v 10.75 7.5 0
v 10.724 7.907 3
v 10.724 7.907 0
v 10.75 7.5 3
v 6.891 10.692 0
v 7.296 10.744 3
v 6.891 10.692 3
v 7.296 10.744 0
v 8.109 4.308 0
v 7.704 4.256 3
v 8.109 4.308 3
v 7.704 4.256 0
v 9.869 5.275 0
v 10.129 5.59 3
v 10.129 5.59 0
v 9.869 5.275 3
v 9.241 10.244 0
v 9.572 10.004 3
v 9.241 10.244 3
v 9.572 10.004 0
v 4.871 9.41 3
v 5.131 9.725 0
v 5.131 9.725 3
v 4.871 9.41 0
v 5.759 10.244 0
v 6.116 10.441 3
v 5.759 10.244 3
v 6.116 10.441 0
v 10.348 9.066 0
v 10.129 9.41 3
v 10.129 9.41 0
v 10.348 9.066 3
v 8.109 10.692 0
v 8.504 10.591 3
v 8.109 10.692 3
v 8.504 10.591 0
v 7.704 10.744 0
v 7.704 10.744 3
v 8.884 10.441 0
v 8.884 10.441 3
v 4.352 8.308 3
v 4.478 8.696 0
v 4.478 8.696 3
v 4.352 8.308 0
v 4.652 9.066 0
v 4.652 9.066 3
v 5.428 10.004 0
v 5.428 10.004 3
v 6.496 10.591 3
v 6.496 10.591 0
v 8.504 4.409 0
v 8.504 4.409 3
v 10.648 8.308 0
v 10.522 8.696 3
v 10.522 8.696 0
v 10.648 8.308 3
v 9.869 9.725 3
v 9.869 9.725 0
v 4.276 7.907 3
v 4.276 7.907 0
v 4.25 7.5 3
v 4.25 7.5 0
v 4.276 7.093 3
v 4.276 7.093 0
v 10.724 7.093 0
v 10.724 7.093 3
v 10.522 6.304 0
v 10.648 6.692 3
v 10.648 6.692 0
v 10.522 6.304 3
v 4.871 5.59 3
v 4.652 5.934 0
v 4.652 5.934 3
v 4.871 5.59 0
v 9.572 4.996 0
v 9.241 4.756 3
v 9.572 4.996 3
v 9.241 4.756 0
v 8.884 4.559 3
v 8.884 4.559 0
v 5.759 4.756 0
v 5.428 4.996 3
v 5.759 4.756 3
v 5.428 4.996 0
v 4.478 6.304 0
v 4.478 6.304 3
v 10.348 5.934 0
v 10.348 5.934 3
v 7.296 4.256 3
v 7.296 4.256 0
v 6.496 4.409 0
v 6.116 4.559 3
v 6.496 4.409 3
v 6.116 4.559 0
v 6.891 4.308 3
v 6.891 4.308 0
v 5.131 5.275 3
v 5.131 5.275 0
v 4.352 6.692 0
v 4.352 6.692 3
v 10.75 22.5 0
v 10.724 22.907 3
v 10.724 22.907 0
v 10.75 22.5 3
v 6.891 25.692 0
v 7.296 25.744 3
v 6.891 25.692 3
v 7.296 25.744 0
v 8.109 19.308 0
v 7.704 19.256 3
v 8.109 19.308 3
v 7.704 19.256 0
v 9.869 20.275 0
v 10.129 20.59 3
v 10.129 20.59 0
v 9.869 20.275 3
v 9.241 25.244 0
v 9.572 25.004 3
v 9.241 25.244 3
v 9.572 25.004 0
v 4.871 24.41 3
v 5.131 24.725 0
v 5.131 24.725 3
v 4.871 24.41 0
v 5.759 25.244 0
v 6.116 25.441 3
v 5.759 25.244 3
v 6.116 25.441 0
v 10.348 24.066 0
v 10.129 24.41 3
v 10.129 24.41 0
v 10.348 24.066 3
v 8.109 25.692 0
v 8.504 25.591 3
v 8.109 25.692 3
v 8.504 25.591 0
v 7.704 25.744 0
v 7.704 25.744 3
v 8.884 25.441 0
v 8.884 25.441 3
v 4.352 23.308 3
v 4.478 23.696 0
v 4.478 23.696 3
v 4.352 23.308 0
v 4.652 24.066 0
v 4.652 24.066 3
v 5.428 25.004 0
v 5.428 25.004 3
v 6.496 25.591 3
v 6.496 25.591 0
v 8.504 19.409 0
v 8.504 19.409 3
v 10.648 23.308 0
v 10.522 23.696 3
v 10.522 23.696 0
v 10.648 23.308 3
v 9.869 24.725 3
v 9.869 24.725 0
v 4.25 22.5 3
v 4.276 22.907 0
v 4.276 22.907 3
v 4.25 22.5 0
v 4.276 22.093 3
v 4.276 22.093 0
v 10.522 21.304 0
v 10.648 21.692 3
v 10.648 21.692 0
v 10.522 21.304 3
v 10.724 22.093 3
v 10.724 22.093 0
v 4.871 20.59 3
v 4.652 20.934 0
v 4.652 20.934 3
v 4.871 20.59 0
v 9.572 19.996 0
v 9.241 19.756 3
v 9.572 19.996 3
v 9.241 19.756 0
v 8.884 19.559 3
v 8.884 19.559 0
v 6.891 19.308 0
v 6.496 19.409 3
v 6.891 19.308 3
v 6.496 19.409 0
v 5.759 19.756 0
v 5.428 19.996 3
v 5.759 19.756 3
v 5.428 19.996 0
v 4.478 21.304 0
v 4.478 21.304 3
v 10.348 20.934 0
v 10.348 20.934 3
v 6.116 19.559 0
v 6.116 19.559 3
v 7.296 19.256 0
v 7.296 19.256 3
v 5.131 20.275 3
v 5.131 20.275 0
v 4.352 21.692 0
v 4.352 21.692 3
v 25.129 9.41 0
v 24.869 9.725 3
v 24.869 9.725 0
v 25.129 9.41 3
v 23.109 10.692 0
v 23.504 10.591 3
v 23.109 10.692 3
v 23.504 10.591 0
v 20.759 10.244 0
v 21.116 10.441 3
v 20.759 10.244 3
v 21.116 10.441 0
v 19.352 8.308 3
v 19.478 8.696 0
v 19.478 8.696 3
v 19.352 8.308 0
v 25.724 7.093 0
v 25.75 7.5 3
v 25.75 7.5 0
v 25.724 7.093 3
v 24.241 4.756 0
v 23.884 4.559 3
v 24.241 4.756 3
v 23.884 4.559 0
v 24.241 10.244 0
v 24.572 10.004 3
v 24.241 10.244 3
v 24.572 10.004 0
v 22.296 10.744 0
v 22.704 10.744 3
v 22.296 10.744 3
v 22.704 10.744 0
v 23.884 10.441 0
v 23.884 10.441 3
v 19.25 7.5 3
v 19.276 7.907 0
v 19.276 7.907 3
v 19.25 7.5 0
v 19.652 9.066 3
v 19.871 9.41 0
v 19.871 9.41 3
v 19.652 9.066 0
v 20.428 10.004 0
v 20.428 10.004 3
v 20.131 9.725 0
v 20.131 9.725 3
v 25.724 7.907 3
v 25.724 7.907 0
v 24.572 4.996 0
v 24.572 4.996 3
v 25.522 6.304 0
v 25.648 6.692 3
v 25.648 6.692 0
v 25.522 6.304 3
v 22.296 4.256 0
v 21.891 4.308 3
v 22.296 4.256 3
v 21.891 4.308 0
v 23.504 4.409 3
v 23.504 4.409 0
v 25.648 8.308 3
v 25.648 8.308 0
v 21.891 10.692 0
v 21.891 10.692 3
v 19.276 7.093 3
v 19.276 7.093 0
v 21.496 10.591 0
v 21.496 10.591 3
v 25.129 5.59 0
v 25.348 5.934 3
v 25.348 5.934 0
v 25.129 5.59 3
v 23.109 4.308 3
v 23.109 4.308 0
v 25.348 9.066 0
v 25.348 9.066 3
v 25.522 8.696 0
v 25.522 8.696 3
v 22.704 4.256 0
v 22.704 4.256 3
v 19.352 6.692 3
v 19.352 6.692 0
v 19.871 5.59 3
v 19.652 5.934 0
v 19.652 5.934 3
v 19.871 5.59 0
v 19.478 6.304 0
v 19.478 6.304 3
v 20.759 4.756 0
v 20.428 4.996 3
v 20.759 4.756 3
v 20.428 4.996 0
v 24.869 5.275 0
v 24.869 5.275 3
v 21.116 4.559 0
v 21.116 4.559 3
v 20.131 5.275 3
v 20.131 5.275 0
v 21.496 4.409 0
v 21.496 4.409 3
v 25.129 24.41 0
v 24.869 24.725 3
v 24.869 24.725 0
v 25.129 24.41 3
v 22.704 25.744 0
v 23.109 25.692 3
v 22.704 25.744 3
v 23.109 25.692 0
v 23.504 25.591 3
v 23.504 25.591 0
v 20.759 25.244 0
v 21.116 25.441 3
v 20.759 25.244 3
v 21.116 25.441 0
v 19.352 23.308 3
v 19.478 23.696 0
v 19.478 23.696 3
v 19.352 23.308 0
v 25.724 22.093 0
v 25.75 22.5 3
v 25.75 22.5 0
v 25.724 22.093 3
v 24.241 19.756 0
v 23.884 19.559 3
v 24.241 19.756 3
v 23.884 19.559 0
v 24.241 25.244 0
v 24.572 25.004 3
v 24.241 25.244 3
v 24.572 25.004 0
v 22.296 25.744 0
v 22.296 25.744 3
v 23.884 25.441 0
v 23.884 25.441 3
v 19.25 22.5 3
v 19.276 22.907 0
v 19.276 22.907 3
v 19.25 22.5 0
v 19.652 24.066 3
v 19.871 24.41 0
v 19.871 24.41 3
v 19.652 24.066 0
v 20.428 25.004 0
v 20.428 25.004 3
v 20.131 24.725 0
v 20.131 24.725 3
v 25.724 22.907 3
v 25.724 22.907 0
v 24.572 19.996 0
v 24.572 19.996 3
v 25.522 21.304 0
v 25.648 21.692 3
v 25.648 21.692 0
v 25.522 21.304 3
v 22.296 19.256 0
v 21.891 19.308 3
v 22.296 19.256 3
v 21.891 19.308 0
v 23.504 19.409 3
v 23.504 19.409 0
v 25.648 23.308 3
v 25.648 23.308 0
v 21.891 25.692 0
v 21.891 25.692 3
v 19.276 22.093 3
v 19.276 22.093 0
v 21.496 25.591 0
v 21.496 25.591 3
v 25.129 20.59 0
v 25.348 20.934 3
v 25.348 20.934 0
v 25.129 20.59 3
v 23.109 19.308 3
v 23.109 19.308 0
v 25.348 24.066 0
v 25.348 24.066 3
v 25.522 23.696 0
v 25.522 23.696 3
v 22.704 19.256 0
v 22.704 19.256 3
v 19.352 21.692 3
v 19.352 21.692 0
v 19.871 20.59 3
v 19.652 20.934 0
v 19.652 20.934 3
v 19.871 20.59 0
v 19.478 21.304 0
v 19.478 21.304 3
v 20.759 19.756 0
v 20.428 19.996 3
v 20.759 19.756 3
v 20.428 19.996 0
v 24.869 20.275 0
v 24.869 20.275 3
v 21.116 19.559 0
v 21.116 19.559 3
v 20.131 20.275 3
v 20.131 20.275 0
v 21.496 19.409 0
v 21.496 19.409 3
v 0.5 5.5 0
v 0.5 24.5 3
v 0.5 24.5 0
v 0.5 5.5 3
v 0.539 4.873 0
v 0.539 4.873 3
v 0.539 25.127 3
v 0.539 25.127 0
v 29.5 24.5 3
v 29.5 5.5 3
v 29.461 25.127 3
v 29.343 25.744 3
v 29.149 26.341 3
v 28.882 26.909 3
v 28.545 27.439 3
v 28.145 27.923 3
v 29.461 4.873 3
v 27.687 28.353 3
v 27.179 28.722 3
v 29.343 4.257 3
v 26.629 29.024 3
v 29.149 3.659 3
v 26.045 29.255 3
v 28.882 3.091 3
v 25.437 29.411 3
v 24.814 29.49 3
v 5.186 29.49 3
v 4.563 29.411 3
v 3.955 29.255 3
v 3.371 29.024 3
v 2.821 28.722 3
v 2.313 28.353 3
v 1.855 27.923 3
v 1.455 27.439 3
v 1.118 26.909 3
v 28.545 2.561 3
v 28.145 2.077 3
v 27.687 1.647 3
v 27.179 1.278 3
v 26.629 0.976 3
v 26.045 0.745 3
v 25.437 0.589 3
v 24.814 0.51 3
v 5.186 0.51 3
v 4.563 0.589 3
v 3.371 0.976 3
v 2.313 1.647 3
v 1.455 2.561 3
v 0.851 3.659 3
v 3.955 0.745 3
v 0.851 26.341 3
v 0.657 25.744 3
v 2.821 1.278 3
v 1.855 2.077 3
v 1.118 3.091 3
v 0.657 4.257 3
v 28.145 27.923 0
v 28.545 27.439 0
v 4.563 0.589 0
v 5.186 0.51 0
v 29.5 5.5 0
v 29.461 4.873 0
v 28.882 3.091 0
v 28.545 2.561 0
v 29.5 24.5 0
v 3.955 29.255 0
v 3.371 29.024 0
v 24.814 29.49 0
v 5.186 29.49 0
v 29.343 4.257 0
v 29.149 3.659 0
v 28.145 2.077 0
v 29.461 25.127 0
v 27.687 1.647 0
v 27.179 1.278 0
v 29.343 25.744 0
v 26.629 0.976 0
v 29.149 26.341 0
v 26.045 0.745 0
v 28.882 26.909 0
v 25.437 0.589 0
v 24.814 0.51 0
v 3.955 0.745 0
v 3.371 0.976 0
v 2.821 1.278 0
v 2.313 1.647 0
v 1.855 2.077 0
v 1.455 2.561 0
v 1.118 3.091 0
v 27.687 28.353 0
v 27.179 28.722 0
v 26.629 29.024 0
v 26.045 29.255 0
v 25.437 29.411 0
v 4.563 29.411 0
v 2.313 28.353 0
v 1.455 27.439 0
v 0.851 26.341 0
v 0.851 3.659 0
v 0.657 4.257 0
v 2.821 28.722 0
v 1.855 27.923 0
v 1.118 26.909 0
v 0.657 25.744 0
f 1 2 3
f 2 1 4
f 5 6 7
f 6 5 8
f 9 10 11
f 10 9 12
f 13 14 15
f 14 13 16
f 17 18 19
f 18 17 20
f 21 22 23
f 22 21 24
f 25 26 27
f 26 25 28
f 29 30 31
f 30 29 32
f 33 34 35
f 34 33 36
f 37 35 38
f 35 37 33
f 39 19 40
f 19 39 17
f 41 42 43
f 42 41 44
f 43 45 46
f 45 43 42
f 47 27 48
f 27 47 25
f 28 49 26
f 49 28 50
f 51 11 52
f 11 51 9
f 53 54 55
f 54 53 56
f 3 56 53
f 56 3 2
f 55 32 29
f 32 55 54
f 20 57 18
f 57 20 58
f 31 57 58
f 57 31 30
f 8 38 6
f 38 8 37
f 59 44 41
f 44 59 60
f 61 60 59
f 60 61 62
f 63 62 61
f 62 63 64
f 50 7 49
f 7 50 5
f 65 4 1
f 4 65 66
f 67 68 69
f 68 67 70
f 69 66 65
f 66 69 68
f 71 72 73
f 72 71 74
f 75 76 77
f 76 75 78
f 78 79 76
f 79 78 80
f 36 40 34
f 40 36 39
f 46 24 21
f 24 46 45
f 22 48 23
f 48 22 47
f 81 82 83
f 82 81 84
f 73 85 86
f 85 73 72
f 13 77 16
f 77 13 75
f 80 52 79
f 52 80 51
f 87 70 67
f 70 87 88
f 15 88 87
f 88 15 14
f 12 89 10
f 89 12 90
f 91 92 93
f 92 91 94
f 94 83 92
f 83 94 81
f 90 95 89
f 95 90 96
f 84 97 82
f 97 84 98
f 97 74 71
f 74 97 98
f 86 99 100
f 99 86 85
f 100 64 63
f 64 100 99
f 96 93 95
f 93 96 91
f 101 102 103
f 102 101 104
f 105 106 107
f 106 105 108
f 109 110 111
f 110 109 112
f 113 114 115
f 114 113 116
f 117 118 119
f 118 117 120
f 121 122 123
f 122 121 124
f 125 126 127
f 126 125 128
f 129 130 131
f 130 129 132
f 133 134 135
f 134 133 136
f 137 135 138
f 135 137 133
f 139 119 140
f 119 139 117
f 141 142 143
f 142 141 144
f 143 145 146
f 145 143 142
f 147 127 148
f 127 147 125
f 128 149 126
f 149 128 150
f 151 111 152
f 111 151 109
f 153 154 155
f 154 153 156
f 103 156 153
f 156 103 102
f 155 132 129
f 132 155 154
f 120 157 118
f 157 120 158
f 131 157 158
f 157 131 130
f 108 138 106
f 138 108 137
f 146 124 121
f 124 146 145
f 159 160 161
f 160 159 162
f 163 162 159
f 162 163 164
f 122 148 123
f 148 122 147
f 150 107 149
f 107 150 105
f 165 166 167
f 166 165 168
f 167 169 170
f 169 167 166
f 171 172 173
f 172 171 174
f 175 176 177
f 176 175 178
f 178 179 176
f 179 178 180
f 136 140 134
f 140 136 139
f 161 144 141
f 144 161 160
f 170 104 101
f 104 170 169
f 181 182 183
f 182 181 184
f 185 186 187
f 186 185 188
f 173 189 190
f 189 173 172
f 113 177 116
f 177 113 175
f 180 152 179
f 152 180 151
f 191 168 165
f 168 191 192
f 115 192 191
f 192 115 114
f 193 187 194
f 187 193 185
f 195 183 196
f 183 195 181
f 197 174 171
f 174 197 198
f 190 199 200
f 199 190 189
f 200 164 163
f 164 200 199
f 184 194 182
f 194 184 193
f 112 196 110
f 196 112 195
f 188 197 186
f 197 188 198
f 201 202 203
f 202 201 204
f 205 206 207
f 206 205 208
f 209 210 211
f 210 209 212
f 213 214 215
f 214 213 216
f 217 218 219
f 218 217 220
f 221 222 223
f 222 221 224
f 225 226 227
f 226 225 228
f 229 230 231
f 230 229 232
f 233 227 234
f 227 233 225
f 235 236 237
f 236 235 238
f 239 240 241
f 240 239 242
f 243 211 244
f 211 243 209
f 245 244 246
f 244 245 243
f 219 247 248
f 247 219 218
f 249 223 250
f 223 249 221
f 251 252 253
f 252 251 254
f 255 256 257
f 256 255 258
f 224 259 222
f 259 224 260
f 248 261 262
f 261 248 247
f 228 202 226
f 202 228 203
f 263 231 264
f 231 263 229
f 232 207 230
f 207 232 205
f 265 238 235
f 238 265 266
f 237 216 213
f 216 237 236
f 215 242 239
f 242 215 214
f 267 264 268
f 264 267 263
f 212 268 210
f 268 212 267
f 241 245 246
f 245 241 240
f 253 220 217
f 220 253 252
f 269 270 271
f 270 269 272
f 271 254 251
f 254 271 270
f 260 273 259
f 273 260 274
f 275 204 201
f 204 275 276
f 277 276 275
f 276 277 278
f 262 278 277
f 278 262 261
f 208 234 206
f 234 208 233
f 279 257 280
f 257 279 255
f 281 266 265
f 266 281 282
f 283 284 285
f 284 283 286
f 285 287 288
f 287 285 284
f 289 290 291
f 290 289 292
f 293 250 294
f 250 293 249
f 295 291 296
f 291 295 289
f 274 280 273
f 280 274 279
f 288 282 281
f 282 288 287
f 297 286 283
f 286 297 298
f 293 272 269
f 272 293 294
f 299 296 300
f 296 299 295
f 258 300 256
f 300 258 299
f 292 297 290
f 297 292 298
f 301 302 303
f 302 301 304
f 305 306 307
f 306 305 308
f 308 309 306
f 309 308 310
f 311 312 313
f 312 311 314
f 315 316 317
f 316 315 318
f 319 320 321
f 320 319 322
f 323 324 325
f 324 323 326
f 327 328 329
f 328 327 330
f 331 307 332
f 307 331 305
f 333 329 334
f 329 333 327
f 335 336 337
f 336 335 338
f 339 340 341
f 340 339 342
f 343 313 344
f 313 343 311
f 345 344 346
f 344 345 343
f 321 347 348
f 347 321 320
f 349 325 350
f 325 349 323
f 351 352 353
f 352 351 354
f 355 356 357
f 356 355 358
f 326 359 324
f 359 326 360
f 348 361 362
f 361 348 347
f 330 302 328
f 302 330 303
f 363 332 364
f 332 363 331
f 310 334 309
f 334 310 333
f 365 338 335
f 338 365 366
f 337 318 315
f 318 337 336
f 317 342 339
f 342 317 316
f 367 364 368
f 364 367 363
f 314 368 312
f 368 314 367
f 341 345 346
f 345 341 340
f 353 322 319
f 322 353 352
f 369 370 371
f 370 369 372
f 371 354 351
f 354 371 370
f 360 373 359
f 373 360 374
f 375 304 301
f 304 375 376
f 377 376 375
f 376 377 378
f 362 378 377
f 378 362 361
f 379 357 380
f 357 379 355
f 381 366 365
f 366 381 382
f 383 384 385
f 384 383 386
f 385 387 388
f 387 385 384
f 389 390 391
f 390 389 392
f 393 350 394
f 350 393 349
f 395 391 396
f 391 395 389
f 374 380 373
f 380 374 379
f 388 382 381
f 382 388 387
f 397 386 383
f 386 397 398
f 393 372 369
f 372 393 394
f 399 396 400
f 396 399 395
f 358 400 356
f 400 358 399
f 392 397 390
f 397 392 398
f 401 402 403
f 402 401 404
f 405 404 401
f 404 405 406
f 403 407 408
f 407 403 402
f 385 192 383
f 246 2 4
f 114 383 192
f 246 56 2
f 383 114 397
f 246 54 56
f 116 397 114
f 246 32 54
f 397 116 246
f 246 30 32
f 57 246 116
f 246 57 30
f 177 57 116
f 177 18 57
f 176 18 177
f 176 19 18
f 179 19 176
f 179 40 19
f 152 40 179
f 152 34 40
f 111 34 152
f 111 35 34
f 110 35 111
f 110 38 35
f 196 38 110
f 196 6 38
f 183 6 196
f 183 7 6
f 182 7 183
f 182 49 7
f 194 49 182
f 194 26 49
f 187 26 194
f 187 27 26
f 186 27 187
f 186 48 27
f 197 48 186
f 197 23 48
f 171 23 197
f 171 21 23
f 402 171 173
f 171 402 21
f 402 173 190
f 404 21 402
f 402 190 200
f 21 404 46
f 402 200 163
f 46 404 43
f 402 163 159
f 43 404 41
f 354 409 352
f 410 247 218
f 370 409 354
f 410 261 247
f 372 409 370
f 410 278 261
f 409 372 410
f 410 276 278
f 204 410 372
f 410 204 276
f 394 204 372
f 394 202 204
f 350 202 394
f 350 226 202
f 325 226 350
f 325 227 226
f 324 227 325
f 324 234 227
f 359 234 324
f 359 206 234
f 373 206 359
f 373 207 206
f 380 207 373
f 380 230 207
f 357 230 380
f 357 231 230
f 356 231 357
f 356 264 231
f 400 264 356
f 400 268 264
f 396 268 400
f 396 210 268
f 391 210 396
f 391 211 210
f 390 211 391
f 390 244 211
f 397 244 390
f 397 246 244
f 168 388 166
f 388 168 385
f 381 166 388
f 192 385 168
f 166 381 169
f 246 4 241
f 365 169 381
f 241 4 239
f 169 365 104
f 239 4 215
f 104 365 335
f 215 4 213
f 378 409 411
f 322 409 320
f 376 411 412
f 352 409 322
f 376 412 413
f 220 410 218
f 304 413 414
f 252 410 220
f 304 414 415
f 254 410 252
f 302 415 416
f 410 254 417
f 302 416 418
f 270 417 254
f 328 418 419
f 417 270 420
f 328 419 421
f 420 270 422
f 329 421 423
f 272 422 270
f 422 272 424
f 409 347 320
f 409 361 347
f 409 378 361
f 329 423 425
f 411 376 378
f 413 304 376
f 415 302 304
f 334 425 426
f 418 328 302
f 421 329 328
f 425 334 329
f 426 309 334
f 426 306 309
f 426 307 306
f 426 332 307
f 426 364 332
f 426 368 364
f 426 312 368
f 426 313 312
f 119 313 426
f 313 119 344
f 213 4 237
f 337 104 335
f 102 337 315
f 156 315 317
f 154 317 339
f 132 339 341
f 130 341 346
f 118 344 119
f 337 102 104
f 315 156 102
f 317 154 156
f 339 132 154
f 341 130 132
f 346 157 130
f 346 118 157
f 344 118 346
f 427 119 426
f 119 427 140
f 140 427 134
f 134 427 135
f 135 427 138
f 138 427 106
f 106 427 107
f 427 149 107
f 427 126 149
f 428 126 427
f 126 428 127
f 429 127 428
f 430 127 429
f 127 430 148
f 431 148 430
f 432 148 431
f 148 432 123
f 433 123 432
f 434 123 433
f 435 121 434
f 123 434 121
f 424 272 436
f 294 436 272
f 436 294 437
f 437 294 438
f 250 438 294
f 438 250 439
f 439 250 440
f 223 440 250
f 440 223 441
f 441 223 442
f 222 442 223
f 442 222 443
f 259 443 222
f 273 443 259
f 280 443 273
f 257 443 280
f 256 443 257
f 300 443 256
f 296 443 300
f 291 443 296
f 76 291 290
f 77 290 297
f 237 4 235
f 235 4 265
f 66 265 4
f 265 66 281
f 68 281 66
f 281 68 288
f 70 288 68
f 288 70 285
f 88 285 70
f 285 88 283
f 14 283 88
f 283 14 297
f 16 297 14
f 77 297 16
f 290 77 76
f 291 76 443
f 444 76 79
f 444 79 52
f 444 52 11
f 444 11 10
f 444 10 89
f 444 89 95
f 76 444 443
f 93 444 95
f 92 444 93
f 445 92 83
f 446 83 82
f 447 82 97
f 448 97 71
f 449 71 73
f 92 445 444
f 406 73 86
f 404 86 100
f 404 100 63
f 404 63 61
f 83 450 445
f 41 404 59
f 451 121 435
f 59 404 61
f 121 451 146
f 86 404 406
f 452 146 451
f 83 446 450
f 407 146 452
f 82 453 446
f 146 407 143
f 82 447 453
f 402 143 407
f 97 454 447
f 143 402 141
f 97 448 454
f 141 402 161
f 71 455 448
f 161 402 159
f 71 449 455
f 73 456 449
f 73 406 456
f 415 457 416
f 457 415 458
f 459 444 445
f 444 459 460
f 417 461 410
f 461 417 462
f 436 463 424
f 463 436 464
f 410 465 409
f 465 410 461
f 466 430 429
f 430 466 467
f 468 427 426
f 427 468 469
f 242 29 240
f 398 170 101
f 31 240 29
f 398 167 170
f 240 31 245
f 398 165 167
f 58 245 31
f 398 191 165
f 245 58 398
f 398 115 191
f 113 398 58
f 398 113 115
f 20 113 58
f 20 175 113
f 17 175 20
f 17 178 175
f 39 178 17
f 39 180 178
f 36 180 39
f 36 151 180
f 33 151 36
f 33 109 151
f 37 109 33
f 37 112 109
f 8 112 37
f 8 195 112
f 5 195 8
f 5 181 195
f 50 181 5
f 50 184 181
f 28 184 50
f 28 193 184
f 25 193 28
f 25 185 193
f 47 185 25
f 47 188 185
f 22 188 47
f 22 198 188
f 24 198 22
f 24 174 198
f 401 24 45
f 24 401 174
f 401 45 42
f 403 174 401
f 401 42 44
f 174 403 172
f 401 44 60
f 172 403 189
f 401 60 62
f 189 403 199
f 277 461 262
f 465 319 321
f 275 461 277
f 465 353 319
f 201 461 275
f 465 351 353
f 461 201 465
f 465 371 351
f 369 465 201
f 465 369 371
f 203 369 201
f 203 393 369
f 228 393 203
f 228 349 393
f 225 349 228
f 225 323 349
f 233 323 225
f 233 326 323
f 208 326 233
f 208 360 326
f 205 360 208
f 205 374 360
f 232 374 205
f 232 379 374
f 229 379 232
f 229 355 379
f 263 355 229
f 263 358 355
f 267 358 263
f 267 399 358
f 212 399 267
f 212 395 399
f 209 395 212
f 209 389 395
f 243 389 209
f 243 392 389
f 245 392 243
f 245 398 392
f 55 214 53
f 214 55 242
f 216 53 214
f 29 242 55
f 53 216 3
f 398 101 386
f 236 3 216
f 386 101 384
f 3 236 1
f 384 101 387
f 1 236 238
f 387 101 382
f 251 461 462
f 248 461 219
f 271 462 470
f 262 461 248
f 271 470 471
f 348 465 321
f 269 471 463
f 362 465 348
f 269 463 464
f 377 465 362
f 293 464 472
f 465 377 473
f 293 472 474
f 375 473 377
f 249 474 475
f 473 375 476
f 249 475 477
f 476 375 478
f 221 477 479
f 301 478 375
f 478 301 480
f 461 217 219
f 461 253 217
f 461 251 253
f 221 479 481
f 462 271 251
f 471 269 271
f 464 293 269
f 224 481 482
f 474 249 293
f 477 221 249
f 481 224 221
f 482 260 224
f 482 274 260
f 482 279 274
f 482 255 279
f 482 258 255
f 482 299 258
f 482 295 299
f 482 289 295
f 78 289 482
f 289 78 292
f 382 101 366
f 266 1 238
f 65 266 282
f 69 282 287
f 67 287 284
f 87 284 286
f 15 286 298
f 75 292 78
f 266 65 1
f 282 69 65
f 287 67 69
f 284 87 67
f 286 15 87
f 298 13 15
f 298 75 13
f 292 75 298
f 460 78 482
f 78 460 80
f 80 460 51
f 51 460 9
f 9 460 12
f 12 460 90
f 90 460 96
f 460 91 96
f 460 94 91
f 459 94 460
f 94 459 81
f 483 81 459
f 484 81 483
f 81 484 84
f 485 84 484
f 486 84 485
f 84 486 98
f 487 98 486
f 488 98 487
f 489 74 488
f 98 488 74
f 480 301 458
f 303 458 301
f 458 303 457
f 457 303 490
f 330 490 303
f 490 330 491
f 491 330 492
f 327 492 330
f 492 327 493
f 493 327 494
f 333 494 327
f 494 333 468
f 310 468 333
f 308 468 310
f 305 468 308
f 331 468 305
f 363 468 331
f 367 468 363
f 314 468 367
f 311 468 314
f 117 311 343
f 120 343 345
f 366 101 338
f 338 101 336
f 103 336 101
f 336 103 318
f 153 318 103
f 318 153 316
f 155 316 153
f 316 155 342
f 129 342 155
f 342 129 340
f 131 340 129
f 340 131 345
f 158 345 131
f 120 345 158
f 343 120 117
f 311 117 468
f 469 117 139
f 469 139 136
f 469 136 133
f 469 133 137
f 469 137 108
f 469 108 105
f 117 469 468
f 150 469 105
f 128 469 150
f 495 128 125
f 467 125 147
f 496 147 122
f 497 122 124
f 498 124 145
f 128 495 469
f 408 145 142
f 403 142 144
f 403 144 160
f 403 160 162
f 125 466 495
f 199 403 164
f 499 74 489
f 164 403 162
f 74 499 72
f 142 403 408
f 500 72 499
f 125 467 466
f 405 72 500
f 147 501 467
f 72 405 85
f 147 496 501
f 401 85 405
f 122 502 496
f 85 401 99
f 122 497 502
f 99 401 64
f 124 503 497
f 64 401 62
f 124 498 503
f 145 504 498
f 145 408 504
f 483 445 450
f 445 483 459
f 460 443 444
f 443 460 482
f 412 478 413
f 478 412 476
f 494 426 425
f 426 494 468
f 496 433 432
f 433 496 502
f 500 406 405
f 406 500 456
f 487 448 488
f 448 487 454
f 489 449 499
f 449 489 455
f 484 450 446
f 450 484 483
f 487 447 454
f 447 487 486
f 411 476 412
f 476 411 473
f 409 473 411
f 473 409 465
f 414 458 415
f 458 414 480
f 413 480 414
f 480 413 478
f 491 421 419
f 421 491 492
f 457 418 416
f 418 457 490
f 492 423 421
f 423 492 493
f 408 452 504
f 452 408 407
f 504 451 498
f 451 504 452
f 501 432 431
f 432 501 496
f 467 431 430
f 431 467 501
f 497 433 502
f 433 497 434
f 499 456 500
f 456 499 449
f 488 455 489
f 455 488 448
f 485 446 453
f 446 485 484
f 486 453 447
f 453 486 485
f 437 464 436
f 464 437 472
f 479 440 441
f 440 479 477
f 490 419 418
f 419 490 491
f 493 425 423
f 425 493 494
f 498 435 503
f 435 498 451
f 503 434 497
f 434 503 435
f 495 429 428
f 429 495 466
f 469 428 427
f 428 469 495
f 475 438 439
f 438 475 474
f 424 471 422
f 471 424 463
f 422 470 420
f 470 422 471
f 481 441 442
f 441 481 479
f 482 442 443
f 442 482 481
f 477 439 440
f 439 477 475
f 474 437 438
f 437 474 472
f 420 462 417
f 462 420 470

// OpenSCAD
// Generated by SolidPython 1.1.3 on 2023-01-30 13:25:10
$fn = 50;


difference() {
	union() {
		translate(v = [15.0000000000, 15.0000000000, 0]) {
			rotate(a = [0, 0, 0]) {
				hull() {
					translate(v = [-9.5000000000, 9.5000000000, 0]) {
						rotate(a = [0, 0, 0]) {
							translate(v = [0, 0, 0]) {
								rotate(a = [0, 0, 0]) {
									cylinder(h = 3, r = 5);
								}
							}
						}
					}
					translate(v = [9.5000000000, 9.5000000000, 0]) {
						rotate(a = [0, 0, 0]) {
							translate(v = [0, 0, 0]) {
								rotate(a = [0, 0, 0]) {
									cylinder(h = 3, r = 5);
								}
							}
						}
					}
					translate(v = [-9.5000000000, -9.5000000000, 0]) {
						rotate(a = [0, 0, 0]) {
							translate(v = [0, 0, 0]) {
								rotate(a = [0, 0, 0]) {
									cylinder(h = 3, r = 5);
								}
							}
						}
					}
					translate(v = [9.5000000000, -9.5000000000, 0]) {
						rotate(a = [0, 0, 0]) {
							translate(v = [0, 0, 0]) {
								rotate(a = [0, 0, 0]) {
									cylinder(h = 3, r = 5);
								}
							}
						}
					}
				}
			}
		}
	}
	union() {
		translate(v = [7.5000000000, 7.5000000000, 0]) {
			rotate(a = [0, 0, 0]) {
				translate(v = [0, 0, -50]) {
					rotate(a = [0, 0, 0]) {
						cylinder(h = 100, r = 3.2500000000);
					}
				}
			}
		}
		translate(v = [7.5000000000, 22.5000000000, 0]) {
			rotate(a = [0, 0, 0]) {
				translate(v = [0, 0, -50]) {
					rotate(a = [0, 0, 0]) {
						cylinder(h = 100, r = 3.2500000000);
					}
				}
			}
		}
		translate(v = [22.5000000000, 7.5000000000, 0]) {
			rotate(a = [0, 0, 0]) {
				translate(v = [0, 0, -50]) {
					rotate(a = [0, 0, 0]) {
						cylinder(h = 100, r = 3.2500000000);
					}
				}
			}
		}
		translate(v = [22.5000000000, 22.5000000000, 0]) {
			rotate(a = [0, 0, 0]) {
				translate(v = [0, 0, -50]) {
					rotate(a = [0, 0, 0]) {
						cylinder(h = 100, r = 3.2500000000);
					}
				}
			}
		}
	}
}
/***********************************************
*********      SolidPython code:      **********
************************************************
 
from solid import *
import os
import subprocess

import oomB

import opsc_library_gen

mode = "laser"
#mode = "3d_print"

defined_objects = {}

radius_dict = {}
countersunk_dict = {}


def set_mode(m):
    global mode
    mode = m
    radius_dict['M6'] = 6.5/2
    radius_dict['M3'] = 3.3/2
    if mode == "laser":
        radius_dict['M6'] = 6/2
        radius_dict['M3'] = 3/2

    countersunk_dict['M3'] = {}
    countersunk_dict['M3']['little_rad'] = radius_dict['M3']
    countersunk_dict['M3']['big_rad'] = (5.5+0.6)/2
    if mode == "laser":
        countersunk_dict['M3']['big_rad'] = (4.75+0.6)/2
        countersunk_dict['M3']['little_rad'] = (4.75+0.6)/2

    countersunk_dict['M3']['height'] = 1.7


def opsc_make_object(filename, objects, save_type="none",resolution=50, layers = 1, tilediff = 200, mode="laser"):
    set_mode(mode)
    save_type = save_type.lower()
    os.makedirs(os.path.dirname(filename), exist_ok=True)
    final_object = opsc_get_object(objects)
    # Save the final object to the specified filename    
    scad_render_to_file(final_object, filename, file_header='$fn = %s;' % resolution, include_orig_code=True)
    if mode == "laser":
        filename_laser = filename.replace(".scad","-flat.scad")
        scad_render_to_file(getLaser(final_object, layers=layers, tilediff=tilediff), filename_laser, file_header='$fn = %s;' % resolution, include_orig_code=True)
        if save_type == "all":
            saveToAll(filename_laser)
        elif save_type == "dxf":
            saveToDxf(filename_laser)
    if save_type == "all":
        saveToAll(filename)
    elif save_type == "dxf":
        saveToDxf(filename)


def opsc_get_object(objects):
    # Create the solidpython objects
    positive_objects = [get_opsc_item(obj) for obj in objects if obj['type'] == 'positive']
    negative_objects = [get_opsc_item(obj) for obj in objects if obj['type'] == 'negative']
    # Union the positive objects
    positive_object = union()(*positive_objects)
    # Union the negative objects
    negative_object = union()(*negative_objects)
    # Create the final object by subtracting the negative objects from the positive objects
    return difference()(positive_object, negative_object)

def get_opsc_item(params):
    # A dictionary to map radius string values to numerical values
    #radius_dict = {'small': 5, 'medium': 10, 'large': 15}
    # An array of function names for basic shapes
    basic_shapes = ['cube', 'sphere', 'cylinder']
    
    # An array of function names for other shapes
    other_shapes = ['hole', 'slot', 'rounded_rectangle', 'countersunk']
    


    # Convert radius to r if present, and remove radius from the params dictionary
    if 'radius' in params:
        if isinstance(params['radius'], str):
            # Use the radius_dict to map the radius string value to a numerical value
            params['r'] = radius_dict[params['radius']]
        else:
            params['r'] = params['radius']
        del params['radius']
    

    # Check if the object type is a basic shape
    if params['shape'] in basic_shapes:
        # Remove shape and unexpected dictionary values
        allowed_keys = {'size', 'r', 'r1', 'r2', 'd', 'h', 'rw', 'rh', 'dw', 'dh'}
        shape_params = {k: v for k, v in params.items() if k in allowed_keys}

        # Call the corresponding function for the shape parameter, using ** notation to pass the shape_params dictionary as keyword arguments
        return get_opsc_transform(params,globals()[params['shape']](**shape_params))
    
    # If the object type is not a basic shape, check if it's a defined object or one of the other shapes
    elif params['shape'] in other_shapes:
        # Call the corresponding function for the shape parameter, passing the params dictionary as an argument
        p2 = copy.deepcopy(params)
        p2["pos"] = [0,0,0]
        return get_opsc_transform(params,globals()[params['shape']](p2))
    
    # If the object is not a basic shape or a defined object, try to import it from a .scad file
    else:
        obj = defined_objects[params['shape']]
        return get_opsc_transform(params,obj)

def get_opsc_transform(params, solid_obj):
    # Rotate the object based on the 'rot' field in the params dictionary, or the 'rotX', 'rotY', and 'rotZ' fields if 'rot' is not present
    rot = params.get('rot', [])
    if rot:
        rotX, rotY, rotZ = rot
    else:
        rotX = params.get('rotX', 0)
        rotY = params.get('rotY', 0)
        rotZ = params.get('rotZ', 0)
    solid_obj = rotate([rotX, rotY, rotZ])(solid_obj)

    # Translate the object based on the 'pos' field in the params dictionary, or the 'x', 'y', and 'z' fields if 'pos' is not present
    pos = params.get('pos', [])
    if pos:
        x, y, z = pos
    else:
        x = params.get('x', 0)
        y = params.get('y', 0)
        z = params.get('z', 0)
    solid_obj = translate([x, y, z])(solid_obj)
    return solid_obj


import random

def opsc_easy_array(type, shape, repeats, pos_start, shift_arr, **kwargs):
    for i in range(0,3):
        repeats.append(1)
        pos_start.append(0)
        shift_arr.append(0)
    return_objects = []

    for x in range(0,repeats[0]):
        for y in range(0,repeats[1]):
            for z in range(0,repeats[2]):
                return_objects.append(opsc_easy(type, shape, pos=[pos_start[0]+x*shift_arr[0],pos_start[1]+y*shift_arr[1],pos_start[2]+z*shift_arr[2]], **kwargs))
    return return_objects                



def opsc_easy(type, shape, **kwargs):
    obj = {
        'type': type,
        'shape': shape
    }
    for param in ['size', 'r', 'r1', 'r2', 'd', 'h', 'rw', 'rh', 'dw', 'dh', 'pos', 'x', 'y', 'z', 'rot', 'rotX', 'rotY', 'rotZ', "w"]:
        if param in kwargs:
            obj[param] = kwargs[param]
    return obj

def hole(params):
    p2 = copy.deepcopy(params)  
    # Check if the radius is a string and replace it with the corresponding value from the dictionary
    if isinstance(p2['r'], str):
        p2['r'] = radius_dict[p2['r']]
    
    # Set the height to 100 if not specified
    if 'h' not in p2:
        p2['h'] = 100
        p2["pos"] = [0,0,-50]
    p2["center"] = True
    # Create the cylinder object
    p2["shape"] = "cylinder"
    p2["type"] = "positive"

    return get_opsc_item(p2)

import copy

def countersunk(params):
    p2 = copy.deepcopy(params)
    counter_rad = p2['r']
    p2['r'] = radius_dict[p2['r']]
    hp = copy.deepcopy(p2)
    hp["type"] = "positive"
    hp["shape"] = "hole"
    del hp["rot"]
    hol = get_opsc_item(hp)
    
    cp = copy.deepcopy(p2)
    cp["h"] = countersunk_dict[counter_rad]["height"]
    cp["r2"] = countersunk_dict[counter_rad]["little_rad"]
    cp["r1"] = countersunk_dict[counter_rad]["big_rad"]
    del cp["r"]
    del cp["rot"]
    cp["type"] = "positive"
    cp["shape"] = "cylinder"
    cp["pos"] = [0,0,0]

    top = get_opsc_item(cp)
    return union()(hol,top)



def slot(params):  
    p2 = copy.deepcopy(params) 
    if isinstance(p2['r'], str):
        p2['r'] = radius_dict[p2['r']]
    p2["type"] = "positive"
    p2["shape"] = "hole"
    del p2["rot"]
    p2["pos"] = [0,0,0]
    left = copy.deepcopy(p2)
    right = copy.deepcopy(p2)
    left["pos"][0] = p2["w"] / 2 - p2["r"] 
    
    right["pos"][0] = -p2["w"] / 2 + p2["r"] 
    pass
    leftObj = get_opsc_item(left)
    rightObj = get_opsc_item(right)
    return hull()(leftObj, rightObj)

def rounded_rectangle(params):   
    p2 = copy.deepcopy(params) 
    p2["h"] = p2["size"][2]
    p2["pos"] = p2.get("pos", [0, 0, 0]) 
    p2["type"] = "positive"
    p2["shape"] = "hole"
    p2["pos"] = [0,0,0]
    
    if 'rot' in p2:
        del p2["rot"]   
    if 'r' not in p2:
        p2["r"] = 5 
    tl = copy.deepcopy(p2)
    tr = copy.deepcopy(p2)
    bl = copy.deepcopy(p2)
    br = copy.deepcopy(p2)
    tl["pos"][0] = -(p2["size"][0] - p2["r"]*2)/2
    tl["pos"][1] = (p2["size"][1] - p2["r"]*2)/2
    tr["pos"][0] = (p2["size"][0] - p2["r"]*2)/2
    tr["pos"][1] = (p2["size"][1] - p2["r"]*2)/2
    bl["pos"][0] = -(p2["size"][0] - p2["r"]*2)/2
    bl["pos"][1] = -(p2["size"][1] - p2["r"]*2)/2
    br["pos"][0] = (p2["size"][0] - p2["r"]*2)/2
    br["pos"][1] = -(p2["size"][1] - p2["r"]*2)/2
    del tl["size"]
    del tr["size"]
    del bl["size"]
    del br["size"]
    tlo = get_opsc_item(tl)
    tro = get_opsc_item(tr)
    blo = get_opsc_item(bl)
    bro = get_opsc_item(br)    
    return hull()(tlo, tro, blo, bro)



def import_scad_object(filename):
    # Import the .scad file and convert it to a solidpython object
    #filename = "parts"
    obj = import_scad(filename)
    return obj.main()
    


import os
import solid as solidpython

# A dictionary to store the defined objects


def load_scad_objects():
    opsc_library_gen.gen_library(defined_objects)

import random

def test(num_objects):
    objects = []
    for i in range(num_objects):
        # Choose a random shape
        #shape = random.choice(['cube', 'sphere', 'cylinder', 'hole', 'slot', "rounded_rectangle"])
        shape = random.choice(["rounded_rectangle"])

        # Choose a random type
        type = random.choice(['positive', 'negative'])
        
        # Create an empty object dictionary
        obj = {'shape': shape, 'type': type}
        
        # Set shape-specific parameters
        if obj['shape'] in ['cube']:
            obj['size'] =  [random.uniform(5, 15), random.uniform(5, 15), random.uniform(5, 15)]
        if obj['shape'] in ['rounded_rectangle']:
            obj['size'] =  [random.uniform(5, 15), random.uniform(5, 15), random.uniform(5, 15)]
            obj['r'] = random.uniform(0.5, 5)
        elif obj['shape'] == 'sphere':
            obj['r'] = random.uniform(5, 15)
        elif obj['shape'] in ['cylinder', 'hole']:
            obj['r'] = random.uniform(0.5, 5)
            obj['h'] = random.uniform(5, 15)
        elif obj['shape'] == 'slot':
            obj['r'] = random.uniform(0.5, 5)
            obj['h'] = random.uniform(5, 15)
            obj['w'] = random.uniform(5, 15)
        
        # Set a random position and rotation
        obj['pos'] = [random.uniform(-20, 20), random.uniform(-20, 20), random.uniform(-20, 20)]
        obj['rot'] = [random.uniform(-180, 180), random.uniform(-180, 180), random.uniform(-180, 180)]
        
        # Add the object to the list
        objects.append(obj)
    return objects

####### old file saving
def saveToAll(fileIn):
    saveToDxf(fileIn)
    saveToPng(fileIn)
    saveToStl(fileIn)
    saveToSvg(fileIn)

def saveToDxf(fileIn, fileOut="", copy_to_laser=True):
    if fileOut == "":
        fileOut = fileIn.replace(".scad",".dxf")
    saveToFile(fileIn, fileOut)


    
def saveToPng(fileIn, fileOut="",extra="--render"):
    if fileOut == "":
        fileOut = fileIn.replace(".scad",".png")
    saveToFile(fileIn, fileOut)

def saveToStl(fileIn, fileOut=""):
    if fileOut == "":
        fileOut = fileIn.replace(".scad",".stl")
    saveToFile(fileIn, fileOut)
    
def saveToSvg(fileIn, fileOut=""):
    if fileOut == "":
        fileOut = fileIn.replace(".scad",".svg")
    saveToFile(fileIn, fileOut)

def saveToFile(fileIn, fileOut,extra=""):
    #extra = extra + " --colorscheme Tomorrow"

    launchStr = 'openscad -o "' + fileOut + '"' + extra + ' "' + fileIn + '"'
    if ".png" in fileOut:
        launchStr = launchStr + " --render"
    print("            saveToFile launch string: " + launchStr)
    subprocess.run(launchStr)
    x=0

def getLaser(final_object,start=1.5,layers=1,thickness=3,tilediff=200):
        rv= []

        for x in range(layers):
            rv.append(translate([0,x*tilediff,0])(
                    projection()(
                        intersection()(translate([-500,-500,start+x*thickness])(cube(size=[1000,1000,0.1])),
                            final_object
                        )
                    )
            )
            )
            
        return union()(rv)

set_mode("laser")
load_scad_objects() 
 
************************************************/
